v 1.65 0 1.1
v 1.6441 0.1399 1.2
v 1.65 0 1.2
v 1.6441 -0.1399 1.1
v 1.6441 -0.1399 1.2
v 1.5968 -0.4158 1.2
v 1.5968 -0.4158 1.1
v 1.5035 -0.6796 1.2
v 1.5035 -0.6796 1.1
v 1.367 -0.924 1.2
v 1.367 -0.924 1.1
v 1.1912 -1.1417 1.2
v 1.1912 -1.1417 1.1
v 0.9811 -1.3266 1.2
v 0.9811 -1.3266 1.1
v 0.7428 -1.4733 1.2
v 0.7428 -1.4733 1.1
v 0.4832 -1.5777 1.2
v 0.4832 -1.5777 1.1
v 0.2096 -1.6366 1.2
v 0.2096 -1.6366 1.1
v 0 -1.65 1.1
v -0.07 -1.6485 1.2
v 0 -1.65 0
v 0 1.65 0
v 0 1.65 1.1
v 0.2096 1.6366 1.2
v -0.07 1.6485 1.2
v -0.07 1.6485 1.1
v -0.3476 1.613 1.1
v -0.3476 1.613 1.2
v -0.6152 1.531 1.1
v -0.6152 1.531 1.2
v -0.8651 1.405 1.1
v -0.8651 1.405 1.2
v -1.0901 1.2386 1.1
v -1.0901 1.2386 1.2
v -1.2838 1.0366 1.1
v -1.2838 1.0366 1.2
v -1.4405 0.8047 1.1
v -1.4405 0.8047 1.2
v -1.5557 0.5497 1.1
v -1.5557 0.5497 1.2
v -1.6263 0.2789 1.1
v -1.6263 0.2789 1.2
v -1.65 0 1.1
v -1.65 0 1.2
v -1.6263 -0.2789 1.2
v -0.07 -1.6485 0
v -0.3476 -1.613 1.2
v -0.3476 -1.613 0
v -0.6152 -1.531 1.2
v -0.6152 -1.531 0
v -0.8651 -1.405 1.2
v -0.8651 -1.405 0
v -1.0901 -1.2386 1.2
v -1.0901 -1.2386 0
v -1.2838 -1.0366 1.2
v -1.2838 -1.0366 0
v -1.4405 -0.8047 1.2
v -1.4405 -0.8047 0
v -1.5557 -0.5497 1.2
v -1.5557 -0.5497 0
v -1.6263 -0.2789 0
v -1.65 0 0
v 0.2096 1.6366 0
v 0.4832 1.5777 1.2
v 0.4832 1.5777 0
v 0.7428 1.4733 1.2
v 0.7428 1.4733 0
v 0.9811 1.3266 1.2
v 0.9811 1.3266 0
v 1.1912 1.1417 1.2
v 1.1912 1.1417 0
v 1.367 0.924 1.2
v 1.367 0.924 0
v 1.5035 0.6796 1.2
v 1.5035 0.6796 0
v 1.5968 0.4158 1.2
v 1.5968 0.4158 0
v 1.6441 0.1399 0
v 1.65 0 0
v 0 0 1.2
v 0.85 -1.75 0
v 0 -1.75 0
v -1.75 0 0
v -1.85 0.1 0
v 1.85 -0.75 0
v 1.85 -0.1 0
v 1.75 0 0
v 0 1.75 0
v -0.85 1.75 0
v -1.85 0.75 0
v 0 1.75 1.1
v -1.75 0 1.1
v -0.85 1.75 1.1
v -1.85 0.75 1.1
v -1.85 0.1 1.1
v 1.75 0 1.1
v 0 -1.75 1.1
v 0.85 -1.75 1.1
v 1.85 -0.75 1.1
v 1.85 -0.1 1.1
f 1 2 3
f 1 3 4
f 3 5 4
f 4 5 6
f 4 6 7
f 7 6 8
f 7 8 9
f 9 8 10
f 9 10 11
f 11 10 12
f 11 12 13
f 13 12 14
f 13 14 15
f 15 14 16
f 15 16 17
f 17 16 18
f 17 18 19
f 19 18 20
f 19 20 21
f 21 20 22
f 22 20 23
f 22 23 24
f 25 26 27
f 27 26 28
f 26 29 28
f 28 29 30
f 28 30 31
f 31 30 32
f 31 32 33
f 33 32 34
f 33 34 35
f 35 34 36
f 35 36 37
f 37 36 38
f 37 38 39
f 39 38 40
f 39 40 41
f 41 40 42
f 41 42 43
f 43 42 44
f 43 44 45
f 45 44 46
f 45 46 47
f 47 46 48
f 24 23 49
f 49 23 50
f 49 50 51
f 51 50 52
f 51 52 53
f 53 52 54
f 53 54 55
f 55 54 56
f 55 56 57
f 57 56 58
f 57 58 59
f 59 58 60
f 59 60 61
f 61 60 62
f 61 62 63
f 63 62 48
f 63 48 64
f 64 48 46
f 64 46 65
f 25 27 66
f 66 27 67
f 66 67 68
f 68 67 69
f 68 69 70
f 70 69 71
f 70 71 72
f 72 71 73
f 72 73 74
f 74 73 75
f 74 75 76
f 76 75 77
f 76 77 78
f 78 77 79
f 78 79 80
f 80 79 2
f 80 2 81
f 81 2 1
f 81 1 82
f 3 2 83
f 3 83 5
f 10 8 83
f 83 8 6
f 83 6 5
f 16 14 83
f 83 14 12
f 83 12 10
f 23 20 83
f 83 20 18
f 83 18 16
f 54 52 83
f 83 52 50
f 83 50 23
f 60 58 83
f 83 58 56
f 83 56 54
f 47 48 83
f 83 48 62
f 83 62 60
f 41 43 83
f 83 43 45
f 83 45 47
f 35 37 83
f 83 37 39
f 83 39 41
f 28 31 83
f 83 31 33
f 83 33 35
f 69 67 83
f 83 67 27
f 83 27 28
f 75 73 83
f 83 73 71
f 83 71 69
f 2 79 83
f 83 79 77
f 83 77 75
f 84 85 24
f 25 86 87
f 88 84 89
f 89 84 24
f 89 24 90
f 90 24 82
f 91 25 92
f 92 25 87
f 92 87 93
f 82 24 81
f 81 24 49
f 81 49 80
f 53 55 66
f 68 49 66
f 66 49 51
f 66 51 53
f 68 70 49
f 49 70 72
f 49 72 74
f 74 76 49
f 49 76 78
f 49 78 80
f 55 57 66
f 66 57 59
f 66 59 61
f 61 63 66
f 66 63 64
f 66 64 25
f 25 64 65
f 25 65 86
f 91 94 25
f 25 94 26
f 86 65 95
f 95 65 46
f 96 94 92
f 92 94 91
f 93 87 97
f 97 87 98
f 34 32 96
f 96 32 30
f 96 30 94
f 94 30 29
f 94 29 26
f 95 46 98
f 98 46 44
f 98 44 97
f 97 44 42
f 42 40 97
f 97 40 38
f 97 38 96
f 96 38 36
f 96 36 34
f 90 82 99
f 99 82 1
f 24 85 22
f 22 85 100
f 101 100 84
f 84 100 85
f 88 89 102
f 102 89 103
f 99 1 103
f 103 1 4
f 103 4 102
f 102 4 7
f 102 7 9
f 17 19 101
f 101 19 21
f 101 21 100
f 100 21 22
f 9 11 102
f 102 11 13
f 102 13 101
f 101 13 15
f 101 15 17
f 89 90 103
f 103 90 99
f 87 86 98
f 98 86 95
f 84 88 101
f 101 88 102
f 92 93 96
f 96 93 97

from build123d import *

# Parameters (mm, degrees)
SKETCH1_R           = 1.65
BOSS_EXTRUDE1_DEPTH = 1.2
SKETCH2_W           = 1.85
SKETCH2_H           = 1.75
BOSS_EXTRUDE2_DEPTH = 1.1
CHAMFER1_SIZE       = 0.1
CHAMFER2_SIZE       = 1


with BuildPart() as part:
    # Sketch1 → Boss-Extrude1 (new body)
    with BuildSketch(Plane.XY):
        Circle(SKETCH1_R)
    extrude(amount=BOSS_EXTRUDE1_DEPTH)

    # Sketch2 → Boss-Extrude2 (add)
    with BuildSketch(Plane.XY):
        with Locations((-0.925, 0.875)):
            Rectangle(SKETCH2_W, SKETCH2_H)
        with Locations((0.925, -0.875)):
            Rectangle(SKETCH2_W, SKETCH2_H)
    extrude(amount=BOSS_EXTRUDE2_DEPTH)

    # Chamfer1
    chamfer1_edges = [part.edges().sort_by_distance(p)[0] for p in [
        (1.85, 0, 0.55),
        (-1.85, 0, 0.55),
    ]]
    chamfer(chamfer1_edges, length=CHAMFER1_SIZE)

    # Chamfer2
    chamfer2_edges = [part.edges().sort_by_distance(p)[0] for p in [
        (-1.85, 1.75, 0.55),
        (1.85, -1.75, 0.55),
    ]]
    chamfer(chamfer2_edges, length=CHAMFER2_SIZE)


solid = part.part
